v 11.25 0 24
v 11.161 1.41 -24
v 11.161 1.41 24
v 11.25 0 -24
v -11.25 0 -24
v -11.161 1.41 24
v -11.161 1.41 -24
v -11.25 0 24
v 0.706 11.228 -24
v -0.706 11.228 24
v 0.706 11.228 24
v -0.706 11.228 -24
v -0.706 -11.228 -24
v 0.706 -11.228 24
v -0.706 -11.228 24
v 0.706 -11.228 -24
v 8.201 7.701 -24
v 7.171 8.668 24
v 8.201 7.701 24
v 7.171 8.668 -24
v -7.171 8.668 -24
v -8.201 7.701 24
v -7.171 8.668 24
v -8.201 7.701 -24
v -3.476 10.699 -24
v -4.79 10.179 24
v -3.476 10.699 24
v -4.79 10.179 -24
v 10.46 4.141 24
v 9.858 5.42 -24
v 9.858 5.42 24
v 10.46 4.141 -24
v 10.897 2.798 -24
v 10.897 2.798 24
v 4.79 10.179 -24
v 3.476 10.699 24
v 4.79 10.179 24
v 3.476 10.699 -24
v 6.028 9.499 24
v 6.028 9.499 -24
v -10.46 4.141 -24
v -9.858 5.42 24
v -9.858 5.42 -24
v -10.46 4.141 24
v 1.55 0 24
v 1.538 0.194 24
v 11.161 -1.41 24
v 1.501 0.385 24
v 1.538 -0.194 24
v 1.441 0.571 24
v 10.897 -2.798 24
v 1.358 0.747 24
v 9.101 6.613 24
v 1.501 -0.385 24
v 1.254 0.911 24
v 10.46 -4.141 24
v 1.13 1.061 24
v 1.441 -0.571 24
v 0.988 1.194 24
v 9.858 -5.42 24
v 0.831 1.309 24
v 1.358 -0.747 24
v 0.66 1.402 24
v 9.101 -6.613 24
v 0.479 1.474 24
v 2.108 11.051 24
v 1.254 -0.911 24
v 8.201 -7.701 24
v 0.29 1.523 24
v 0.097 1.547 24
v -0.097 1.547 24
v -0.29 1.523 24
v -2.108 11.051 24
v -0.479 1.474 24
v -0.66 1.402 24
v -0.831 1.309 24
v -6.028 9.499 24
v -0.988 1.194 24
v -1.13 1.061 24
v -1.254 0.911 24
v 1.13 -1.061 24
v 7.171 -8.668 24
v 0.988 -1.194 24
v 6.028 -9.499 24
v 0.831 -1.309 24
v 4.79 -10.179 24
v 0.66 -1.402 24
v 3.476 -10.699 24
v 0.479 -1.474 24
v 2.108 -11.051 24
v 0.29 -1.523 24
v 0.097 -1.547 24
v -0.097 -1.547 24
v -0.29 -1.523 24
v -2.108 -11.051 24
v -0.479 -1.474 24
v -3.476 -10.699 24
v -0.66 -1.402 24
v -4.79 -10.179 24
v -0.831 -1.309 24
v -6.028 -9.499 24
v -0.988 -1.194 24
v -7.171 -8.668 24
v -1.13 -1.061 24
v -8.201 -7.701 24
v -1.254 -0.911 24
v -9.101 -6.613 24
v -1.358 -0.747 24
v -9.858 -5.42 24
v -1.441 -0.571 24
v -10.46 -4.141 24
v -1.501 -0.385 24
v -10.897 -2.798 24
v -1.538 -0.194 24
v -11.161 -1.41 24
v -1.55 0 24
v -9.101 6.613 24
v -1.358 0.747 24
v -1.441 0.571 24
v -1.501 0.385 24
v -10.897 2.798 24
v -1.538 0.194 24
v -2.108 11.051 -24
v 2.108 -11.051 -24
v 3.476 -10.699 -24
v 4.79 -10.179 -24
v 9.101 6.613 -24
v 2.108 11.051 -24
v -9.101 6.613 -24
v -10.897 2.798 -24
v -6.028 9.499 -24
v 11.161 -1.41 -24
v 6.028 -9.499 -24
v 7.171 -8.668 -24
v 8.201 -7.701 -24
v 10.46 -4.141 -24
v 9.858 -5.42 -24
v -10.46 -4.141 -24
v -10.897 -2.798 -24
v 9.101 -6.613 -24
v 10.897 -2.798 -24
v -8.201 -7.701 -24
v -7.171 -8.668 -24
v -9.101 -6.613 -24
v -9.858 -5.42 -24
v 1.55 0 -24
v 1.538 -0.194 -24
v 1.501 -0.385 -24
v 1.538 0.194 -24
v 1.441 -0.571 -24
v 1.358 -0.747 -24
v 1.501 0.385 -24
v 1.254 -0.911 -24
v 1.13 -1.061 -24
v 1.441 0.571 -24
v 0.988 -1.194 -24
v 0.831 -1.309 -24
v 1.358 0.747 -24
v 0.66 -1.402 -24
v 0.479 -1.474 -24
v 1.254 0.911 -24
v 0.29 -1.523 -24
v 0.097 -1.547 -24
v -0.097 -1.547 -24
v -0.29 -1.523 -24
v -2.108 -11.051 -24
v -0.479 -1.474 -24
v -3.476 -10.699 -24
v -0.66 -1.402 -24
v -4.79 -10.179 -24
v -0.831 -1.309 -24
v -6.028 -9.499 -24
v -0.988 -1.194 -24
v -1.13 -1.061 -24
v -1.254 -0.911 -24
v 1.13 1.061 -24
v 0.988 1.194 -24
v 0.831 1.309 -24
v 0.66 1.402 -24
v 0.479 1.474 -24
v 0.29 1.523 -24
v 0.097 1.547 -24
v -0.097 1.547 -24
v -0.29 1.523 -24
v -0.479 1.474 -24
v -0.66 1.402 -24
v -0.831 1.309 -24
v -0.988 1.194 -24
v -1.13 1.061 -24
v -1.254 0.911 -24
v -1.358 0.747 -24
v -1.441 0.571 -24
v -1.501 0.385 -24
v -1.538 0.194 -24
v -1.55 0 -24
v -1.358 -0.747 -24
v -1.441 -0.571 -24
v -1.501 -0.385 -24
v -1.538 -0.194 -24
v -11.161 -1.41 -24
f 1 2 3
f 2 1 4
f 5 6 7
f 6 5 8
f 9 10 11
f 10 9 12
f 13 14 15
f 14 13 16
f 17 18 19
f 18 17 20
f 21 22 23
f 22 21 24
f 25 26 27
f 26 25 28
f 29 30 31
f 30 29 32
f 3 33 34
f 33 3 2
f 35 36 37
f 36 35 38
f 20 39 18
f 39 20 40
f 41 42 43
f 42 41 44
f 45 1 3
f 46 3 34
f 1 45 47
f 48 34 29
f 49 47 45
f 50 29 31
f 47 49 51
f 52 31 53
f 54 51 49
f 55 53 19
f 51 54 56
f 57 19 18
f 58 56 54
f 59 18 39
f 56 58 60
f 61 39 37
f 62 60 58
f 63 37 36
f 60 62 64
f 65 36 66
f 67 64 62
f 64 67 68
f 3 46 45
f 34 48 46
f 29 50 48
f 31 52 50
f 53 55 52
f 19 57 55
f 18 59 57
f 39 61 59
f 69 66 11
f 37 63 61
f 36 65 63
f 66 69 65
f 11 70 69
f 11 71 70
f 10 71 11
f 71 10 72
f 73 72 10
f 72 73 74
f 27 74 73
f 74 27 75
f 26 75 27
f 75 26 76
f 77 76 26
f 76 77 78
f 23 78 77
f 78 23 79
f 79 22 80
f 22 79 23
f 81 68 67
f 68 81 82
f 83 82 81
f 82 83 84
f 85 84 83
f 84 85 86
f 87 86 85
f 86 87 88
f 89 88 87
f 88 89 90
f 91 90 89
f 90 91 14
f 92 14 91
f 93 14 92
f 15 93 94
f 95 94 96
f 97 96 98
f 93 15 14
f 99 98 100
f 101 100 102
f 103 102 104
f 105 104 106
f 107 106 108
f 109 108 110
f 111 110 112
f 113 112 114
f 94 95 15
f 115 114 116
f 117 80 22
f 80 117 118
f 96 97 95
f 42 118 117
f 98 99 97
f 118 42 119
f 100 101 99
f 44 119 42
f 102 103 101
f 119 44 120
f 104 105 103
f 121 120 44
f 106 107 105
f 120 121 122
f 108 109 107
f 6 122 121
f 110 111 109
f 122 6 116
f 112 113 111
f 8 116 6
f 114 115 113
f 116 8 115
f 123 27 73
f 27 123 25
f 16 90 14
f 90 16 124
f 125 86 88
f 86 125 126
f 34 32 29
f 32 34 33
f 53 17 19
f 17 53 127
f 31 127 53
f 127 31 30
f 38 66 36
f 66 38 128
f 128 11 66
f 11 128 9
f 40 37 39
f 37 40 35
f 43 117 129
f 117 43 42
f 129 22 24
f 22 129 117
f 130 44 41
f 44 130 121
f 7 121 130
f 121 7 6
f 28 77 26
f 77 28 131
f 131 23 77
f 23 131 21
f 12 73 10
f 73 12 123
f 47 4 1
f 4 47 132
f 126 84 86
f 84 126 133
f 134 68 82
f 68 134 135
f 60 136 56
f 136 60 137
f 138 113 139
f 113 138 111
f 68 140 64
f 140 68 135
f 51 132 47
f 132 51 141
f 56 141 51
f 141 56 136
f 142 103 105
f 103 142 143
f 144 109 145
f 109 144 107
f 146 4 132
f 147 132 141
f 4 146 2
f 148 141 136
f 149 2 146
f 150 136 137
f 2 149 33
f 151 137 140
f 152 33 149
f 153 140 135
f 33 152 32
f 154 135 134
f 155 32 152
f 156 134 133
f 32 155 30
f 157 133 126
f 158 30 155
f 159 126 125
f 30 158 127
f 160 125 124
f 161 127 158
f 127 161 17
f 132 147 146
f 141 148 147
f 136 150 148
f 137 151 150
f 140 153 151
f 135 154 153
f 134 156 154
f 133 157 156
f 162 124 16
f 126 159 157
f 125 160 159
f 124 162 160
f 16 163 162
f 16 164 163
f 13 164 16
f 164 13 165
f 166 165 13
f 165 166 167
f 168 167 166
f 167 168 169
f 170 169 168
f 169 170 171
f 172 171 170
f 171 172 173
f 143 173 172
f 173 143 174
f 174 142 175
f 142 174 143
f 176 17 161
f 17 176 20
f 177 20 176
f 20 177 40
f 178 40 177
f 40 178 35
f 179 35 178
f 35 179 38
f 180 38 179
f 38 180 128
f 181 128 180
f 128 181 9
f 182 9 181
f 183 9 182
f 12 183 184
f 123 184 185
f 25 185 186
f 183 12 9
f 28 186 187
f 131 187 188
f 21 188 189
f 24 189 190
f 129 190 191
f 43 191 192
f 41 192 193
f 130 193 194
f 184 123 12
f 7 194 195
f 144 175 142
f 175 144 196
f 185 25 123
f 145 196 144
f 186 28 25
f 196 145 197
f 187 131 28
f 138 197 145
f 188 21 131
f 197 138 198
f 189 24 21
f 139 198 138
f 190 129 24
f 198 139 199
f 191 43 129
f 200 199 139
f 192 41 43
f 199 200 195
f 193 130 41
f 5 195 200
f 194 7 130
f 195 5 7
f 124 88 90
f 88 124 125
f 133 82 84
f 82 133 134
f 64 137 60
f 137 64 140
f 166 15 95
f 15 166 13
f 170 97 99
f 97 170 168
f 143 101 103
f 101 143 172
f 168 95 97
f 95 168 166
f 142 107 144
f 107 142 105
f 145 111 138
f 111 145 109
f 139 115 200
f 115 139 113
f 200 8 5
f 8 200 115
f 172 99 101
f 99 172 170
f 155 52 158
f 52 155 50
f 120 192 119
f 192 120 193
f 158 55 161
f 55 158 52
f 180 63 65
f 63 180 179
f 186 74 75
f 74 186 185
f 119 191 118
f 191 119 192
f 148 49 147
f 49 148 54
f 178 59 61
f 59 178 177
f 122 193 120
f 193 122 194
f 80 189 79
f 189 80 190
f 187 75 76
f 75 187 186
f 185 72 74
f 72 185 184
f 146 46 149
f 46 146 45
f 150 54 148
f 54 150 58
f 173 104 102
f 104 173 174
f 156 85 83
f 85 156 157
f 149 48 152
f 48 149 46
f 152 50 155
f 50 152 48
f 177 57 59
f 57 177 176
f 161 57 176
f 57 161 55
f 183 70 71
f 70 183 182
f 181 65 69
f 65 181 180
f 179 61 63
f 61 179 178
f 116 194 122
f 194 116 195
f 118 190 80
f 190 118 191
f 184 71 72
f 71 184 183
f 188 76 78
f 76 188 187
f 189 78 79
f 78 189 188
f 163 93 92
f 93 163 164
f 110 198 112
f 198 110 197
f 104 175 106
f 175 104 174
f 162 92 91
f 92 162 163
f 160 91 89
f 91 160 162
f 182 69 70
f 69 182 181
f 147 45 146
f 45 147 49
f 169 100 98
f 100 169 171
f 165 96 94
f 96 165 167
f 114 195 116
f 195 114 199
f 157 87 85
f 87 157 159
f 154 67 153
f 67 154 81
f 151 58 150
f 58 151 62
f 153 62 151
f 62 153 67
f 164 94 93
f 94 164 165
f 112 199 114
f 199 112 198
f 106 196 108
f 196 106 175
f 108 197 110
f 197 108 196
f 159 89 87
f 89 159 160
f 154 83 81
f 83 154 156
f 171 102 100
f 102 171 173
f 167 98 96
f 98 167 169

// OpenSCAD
$fn = 50;


difference() {
	union() {
		translate(v = [0, 0, -24.0000000000]) {
			cylinder(h = 48, r = 11.2500000000);
		}
	}
	union() {
		translate(v = [0, 0, -100.0000000000]) {
			cylinder(h = 200, r = 1.5500000000);
		}
	}
}
